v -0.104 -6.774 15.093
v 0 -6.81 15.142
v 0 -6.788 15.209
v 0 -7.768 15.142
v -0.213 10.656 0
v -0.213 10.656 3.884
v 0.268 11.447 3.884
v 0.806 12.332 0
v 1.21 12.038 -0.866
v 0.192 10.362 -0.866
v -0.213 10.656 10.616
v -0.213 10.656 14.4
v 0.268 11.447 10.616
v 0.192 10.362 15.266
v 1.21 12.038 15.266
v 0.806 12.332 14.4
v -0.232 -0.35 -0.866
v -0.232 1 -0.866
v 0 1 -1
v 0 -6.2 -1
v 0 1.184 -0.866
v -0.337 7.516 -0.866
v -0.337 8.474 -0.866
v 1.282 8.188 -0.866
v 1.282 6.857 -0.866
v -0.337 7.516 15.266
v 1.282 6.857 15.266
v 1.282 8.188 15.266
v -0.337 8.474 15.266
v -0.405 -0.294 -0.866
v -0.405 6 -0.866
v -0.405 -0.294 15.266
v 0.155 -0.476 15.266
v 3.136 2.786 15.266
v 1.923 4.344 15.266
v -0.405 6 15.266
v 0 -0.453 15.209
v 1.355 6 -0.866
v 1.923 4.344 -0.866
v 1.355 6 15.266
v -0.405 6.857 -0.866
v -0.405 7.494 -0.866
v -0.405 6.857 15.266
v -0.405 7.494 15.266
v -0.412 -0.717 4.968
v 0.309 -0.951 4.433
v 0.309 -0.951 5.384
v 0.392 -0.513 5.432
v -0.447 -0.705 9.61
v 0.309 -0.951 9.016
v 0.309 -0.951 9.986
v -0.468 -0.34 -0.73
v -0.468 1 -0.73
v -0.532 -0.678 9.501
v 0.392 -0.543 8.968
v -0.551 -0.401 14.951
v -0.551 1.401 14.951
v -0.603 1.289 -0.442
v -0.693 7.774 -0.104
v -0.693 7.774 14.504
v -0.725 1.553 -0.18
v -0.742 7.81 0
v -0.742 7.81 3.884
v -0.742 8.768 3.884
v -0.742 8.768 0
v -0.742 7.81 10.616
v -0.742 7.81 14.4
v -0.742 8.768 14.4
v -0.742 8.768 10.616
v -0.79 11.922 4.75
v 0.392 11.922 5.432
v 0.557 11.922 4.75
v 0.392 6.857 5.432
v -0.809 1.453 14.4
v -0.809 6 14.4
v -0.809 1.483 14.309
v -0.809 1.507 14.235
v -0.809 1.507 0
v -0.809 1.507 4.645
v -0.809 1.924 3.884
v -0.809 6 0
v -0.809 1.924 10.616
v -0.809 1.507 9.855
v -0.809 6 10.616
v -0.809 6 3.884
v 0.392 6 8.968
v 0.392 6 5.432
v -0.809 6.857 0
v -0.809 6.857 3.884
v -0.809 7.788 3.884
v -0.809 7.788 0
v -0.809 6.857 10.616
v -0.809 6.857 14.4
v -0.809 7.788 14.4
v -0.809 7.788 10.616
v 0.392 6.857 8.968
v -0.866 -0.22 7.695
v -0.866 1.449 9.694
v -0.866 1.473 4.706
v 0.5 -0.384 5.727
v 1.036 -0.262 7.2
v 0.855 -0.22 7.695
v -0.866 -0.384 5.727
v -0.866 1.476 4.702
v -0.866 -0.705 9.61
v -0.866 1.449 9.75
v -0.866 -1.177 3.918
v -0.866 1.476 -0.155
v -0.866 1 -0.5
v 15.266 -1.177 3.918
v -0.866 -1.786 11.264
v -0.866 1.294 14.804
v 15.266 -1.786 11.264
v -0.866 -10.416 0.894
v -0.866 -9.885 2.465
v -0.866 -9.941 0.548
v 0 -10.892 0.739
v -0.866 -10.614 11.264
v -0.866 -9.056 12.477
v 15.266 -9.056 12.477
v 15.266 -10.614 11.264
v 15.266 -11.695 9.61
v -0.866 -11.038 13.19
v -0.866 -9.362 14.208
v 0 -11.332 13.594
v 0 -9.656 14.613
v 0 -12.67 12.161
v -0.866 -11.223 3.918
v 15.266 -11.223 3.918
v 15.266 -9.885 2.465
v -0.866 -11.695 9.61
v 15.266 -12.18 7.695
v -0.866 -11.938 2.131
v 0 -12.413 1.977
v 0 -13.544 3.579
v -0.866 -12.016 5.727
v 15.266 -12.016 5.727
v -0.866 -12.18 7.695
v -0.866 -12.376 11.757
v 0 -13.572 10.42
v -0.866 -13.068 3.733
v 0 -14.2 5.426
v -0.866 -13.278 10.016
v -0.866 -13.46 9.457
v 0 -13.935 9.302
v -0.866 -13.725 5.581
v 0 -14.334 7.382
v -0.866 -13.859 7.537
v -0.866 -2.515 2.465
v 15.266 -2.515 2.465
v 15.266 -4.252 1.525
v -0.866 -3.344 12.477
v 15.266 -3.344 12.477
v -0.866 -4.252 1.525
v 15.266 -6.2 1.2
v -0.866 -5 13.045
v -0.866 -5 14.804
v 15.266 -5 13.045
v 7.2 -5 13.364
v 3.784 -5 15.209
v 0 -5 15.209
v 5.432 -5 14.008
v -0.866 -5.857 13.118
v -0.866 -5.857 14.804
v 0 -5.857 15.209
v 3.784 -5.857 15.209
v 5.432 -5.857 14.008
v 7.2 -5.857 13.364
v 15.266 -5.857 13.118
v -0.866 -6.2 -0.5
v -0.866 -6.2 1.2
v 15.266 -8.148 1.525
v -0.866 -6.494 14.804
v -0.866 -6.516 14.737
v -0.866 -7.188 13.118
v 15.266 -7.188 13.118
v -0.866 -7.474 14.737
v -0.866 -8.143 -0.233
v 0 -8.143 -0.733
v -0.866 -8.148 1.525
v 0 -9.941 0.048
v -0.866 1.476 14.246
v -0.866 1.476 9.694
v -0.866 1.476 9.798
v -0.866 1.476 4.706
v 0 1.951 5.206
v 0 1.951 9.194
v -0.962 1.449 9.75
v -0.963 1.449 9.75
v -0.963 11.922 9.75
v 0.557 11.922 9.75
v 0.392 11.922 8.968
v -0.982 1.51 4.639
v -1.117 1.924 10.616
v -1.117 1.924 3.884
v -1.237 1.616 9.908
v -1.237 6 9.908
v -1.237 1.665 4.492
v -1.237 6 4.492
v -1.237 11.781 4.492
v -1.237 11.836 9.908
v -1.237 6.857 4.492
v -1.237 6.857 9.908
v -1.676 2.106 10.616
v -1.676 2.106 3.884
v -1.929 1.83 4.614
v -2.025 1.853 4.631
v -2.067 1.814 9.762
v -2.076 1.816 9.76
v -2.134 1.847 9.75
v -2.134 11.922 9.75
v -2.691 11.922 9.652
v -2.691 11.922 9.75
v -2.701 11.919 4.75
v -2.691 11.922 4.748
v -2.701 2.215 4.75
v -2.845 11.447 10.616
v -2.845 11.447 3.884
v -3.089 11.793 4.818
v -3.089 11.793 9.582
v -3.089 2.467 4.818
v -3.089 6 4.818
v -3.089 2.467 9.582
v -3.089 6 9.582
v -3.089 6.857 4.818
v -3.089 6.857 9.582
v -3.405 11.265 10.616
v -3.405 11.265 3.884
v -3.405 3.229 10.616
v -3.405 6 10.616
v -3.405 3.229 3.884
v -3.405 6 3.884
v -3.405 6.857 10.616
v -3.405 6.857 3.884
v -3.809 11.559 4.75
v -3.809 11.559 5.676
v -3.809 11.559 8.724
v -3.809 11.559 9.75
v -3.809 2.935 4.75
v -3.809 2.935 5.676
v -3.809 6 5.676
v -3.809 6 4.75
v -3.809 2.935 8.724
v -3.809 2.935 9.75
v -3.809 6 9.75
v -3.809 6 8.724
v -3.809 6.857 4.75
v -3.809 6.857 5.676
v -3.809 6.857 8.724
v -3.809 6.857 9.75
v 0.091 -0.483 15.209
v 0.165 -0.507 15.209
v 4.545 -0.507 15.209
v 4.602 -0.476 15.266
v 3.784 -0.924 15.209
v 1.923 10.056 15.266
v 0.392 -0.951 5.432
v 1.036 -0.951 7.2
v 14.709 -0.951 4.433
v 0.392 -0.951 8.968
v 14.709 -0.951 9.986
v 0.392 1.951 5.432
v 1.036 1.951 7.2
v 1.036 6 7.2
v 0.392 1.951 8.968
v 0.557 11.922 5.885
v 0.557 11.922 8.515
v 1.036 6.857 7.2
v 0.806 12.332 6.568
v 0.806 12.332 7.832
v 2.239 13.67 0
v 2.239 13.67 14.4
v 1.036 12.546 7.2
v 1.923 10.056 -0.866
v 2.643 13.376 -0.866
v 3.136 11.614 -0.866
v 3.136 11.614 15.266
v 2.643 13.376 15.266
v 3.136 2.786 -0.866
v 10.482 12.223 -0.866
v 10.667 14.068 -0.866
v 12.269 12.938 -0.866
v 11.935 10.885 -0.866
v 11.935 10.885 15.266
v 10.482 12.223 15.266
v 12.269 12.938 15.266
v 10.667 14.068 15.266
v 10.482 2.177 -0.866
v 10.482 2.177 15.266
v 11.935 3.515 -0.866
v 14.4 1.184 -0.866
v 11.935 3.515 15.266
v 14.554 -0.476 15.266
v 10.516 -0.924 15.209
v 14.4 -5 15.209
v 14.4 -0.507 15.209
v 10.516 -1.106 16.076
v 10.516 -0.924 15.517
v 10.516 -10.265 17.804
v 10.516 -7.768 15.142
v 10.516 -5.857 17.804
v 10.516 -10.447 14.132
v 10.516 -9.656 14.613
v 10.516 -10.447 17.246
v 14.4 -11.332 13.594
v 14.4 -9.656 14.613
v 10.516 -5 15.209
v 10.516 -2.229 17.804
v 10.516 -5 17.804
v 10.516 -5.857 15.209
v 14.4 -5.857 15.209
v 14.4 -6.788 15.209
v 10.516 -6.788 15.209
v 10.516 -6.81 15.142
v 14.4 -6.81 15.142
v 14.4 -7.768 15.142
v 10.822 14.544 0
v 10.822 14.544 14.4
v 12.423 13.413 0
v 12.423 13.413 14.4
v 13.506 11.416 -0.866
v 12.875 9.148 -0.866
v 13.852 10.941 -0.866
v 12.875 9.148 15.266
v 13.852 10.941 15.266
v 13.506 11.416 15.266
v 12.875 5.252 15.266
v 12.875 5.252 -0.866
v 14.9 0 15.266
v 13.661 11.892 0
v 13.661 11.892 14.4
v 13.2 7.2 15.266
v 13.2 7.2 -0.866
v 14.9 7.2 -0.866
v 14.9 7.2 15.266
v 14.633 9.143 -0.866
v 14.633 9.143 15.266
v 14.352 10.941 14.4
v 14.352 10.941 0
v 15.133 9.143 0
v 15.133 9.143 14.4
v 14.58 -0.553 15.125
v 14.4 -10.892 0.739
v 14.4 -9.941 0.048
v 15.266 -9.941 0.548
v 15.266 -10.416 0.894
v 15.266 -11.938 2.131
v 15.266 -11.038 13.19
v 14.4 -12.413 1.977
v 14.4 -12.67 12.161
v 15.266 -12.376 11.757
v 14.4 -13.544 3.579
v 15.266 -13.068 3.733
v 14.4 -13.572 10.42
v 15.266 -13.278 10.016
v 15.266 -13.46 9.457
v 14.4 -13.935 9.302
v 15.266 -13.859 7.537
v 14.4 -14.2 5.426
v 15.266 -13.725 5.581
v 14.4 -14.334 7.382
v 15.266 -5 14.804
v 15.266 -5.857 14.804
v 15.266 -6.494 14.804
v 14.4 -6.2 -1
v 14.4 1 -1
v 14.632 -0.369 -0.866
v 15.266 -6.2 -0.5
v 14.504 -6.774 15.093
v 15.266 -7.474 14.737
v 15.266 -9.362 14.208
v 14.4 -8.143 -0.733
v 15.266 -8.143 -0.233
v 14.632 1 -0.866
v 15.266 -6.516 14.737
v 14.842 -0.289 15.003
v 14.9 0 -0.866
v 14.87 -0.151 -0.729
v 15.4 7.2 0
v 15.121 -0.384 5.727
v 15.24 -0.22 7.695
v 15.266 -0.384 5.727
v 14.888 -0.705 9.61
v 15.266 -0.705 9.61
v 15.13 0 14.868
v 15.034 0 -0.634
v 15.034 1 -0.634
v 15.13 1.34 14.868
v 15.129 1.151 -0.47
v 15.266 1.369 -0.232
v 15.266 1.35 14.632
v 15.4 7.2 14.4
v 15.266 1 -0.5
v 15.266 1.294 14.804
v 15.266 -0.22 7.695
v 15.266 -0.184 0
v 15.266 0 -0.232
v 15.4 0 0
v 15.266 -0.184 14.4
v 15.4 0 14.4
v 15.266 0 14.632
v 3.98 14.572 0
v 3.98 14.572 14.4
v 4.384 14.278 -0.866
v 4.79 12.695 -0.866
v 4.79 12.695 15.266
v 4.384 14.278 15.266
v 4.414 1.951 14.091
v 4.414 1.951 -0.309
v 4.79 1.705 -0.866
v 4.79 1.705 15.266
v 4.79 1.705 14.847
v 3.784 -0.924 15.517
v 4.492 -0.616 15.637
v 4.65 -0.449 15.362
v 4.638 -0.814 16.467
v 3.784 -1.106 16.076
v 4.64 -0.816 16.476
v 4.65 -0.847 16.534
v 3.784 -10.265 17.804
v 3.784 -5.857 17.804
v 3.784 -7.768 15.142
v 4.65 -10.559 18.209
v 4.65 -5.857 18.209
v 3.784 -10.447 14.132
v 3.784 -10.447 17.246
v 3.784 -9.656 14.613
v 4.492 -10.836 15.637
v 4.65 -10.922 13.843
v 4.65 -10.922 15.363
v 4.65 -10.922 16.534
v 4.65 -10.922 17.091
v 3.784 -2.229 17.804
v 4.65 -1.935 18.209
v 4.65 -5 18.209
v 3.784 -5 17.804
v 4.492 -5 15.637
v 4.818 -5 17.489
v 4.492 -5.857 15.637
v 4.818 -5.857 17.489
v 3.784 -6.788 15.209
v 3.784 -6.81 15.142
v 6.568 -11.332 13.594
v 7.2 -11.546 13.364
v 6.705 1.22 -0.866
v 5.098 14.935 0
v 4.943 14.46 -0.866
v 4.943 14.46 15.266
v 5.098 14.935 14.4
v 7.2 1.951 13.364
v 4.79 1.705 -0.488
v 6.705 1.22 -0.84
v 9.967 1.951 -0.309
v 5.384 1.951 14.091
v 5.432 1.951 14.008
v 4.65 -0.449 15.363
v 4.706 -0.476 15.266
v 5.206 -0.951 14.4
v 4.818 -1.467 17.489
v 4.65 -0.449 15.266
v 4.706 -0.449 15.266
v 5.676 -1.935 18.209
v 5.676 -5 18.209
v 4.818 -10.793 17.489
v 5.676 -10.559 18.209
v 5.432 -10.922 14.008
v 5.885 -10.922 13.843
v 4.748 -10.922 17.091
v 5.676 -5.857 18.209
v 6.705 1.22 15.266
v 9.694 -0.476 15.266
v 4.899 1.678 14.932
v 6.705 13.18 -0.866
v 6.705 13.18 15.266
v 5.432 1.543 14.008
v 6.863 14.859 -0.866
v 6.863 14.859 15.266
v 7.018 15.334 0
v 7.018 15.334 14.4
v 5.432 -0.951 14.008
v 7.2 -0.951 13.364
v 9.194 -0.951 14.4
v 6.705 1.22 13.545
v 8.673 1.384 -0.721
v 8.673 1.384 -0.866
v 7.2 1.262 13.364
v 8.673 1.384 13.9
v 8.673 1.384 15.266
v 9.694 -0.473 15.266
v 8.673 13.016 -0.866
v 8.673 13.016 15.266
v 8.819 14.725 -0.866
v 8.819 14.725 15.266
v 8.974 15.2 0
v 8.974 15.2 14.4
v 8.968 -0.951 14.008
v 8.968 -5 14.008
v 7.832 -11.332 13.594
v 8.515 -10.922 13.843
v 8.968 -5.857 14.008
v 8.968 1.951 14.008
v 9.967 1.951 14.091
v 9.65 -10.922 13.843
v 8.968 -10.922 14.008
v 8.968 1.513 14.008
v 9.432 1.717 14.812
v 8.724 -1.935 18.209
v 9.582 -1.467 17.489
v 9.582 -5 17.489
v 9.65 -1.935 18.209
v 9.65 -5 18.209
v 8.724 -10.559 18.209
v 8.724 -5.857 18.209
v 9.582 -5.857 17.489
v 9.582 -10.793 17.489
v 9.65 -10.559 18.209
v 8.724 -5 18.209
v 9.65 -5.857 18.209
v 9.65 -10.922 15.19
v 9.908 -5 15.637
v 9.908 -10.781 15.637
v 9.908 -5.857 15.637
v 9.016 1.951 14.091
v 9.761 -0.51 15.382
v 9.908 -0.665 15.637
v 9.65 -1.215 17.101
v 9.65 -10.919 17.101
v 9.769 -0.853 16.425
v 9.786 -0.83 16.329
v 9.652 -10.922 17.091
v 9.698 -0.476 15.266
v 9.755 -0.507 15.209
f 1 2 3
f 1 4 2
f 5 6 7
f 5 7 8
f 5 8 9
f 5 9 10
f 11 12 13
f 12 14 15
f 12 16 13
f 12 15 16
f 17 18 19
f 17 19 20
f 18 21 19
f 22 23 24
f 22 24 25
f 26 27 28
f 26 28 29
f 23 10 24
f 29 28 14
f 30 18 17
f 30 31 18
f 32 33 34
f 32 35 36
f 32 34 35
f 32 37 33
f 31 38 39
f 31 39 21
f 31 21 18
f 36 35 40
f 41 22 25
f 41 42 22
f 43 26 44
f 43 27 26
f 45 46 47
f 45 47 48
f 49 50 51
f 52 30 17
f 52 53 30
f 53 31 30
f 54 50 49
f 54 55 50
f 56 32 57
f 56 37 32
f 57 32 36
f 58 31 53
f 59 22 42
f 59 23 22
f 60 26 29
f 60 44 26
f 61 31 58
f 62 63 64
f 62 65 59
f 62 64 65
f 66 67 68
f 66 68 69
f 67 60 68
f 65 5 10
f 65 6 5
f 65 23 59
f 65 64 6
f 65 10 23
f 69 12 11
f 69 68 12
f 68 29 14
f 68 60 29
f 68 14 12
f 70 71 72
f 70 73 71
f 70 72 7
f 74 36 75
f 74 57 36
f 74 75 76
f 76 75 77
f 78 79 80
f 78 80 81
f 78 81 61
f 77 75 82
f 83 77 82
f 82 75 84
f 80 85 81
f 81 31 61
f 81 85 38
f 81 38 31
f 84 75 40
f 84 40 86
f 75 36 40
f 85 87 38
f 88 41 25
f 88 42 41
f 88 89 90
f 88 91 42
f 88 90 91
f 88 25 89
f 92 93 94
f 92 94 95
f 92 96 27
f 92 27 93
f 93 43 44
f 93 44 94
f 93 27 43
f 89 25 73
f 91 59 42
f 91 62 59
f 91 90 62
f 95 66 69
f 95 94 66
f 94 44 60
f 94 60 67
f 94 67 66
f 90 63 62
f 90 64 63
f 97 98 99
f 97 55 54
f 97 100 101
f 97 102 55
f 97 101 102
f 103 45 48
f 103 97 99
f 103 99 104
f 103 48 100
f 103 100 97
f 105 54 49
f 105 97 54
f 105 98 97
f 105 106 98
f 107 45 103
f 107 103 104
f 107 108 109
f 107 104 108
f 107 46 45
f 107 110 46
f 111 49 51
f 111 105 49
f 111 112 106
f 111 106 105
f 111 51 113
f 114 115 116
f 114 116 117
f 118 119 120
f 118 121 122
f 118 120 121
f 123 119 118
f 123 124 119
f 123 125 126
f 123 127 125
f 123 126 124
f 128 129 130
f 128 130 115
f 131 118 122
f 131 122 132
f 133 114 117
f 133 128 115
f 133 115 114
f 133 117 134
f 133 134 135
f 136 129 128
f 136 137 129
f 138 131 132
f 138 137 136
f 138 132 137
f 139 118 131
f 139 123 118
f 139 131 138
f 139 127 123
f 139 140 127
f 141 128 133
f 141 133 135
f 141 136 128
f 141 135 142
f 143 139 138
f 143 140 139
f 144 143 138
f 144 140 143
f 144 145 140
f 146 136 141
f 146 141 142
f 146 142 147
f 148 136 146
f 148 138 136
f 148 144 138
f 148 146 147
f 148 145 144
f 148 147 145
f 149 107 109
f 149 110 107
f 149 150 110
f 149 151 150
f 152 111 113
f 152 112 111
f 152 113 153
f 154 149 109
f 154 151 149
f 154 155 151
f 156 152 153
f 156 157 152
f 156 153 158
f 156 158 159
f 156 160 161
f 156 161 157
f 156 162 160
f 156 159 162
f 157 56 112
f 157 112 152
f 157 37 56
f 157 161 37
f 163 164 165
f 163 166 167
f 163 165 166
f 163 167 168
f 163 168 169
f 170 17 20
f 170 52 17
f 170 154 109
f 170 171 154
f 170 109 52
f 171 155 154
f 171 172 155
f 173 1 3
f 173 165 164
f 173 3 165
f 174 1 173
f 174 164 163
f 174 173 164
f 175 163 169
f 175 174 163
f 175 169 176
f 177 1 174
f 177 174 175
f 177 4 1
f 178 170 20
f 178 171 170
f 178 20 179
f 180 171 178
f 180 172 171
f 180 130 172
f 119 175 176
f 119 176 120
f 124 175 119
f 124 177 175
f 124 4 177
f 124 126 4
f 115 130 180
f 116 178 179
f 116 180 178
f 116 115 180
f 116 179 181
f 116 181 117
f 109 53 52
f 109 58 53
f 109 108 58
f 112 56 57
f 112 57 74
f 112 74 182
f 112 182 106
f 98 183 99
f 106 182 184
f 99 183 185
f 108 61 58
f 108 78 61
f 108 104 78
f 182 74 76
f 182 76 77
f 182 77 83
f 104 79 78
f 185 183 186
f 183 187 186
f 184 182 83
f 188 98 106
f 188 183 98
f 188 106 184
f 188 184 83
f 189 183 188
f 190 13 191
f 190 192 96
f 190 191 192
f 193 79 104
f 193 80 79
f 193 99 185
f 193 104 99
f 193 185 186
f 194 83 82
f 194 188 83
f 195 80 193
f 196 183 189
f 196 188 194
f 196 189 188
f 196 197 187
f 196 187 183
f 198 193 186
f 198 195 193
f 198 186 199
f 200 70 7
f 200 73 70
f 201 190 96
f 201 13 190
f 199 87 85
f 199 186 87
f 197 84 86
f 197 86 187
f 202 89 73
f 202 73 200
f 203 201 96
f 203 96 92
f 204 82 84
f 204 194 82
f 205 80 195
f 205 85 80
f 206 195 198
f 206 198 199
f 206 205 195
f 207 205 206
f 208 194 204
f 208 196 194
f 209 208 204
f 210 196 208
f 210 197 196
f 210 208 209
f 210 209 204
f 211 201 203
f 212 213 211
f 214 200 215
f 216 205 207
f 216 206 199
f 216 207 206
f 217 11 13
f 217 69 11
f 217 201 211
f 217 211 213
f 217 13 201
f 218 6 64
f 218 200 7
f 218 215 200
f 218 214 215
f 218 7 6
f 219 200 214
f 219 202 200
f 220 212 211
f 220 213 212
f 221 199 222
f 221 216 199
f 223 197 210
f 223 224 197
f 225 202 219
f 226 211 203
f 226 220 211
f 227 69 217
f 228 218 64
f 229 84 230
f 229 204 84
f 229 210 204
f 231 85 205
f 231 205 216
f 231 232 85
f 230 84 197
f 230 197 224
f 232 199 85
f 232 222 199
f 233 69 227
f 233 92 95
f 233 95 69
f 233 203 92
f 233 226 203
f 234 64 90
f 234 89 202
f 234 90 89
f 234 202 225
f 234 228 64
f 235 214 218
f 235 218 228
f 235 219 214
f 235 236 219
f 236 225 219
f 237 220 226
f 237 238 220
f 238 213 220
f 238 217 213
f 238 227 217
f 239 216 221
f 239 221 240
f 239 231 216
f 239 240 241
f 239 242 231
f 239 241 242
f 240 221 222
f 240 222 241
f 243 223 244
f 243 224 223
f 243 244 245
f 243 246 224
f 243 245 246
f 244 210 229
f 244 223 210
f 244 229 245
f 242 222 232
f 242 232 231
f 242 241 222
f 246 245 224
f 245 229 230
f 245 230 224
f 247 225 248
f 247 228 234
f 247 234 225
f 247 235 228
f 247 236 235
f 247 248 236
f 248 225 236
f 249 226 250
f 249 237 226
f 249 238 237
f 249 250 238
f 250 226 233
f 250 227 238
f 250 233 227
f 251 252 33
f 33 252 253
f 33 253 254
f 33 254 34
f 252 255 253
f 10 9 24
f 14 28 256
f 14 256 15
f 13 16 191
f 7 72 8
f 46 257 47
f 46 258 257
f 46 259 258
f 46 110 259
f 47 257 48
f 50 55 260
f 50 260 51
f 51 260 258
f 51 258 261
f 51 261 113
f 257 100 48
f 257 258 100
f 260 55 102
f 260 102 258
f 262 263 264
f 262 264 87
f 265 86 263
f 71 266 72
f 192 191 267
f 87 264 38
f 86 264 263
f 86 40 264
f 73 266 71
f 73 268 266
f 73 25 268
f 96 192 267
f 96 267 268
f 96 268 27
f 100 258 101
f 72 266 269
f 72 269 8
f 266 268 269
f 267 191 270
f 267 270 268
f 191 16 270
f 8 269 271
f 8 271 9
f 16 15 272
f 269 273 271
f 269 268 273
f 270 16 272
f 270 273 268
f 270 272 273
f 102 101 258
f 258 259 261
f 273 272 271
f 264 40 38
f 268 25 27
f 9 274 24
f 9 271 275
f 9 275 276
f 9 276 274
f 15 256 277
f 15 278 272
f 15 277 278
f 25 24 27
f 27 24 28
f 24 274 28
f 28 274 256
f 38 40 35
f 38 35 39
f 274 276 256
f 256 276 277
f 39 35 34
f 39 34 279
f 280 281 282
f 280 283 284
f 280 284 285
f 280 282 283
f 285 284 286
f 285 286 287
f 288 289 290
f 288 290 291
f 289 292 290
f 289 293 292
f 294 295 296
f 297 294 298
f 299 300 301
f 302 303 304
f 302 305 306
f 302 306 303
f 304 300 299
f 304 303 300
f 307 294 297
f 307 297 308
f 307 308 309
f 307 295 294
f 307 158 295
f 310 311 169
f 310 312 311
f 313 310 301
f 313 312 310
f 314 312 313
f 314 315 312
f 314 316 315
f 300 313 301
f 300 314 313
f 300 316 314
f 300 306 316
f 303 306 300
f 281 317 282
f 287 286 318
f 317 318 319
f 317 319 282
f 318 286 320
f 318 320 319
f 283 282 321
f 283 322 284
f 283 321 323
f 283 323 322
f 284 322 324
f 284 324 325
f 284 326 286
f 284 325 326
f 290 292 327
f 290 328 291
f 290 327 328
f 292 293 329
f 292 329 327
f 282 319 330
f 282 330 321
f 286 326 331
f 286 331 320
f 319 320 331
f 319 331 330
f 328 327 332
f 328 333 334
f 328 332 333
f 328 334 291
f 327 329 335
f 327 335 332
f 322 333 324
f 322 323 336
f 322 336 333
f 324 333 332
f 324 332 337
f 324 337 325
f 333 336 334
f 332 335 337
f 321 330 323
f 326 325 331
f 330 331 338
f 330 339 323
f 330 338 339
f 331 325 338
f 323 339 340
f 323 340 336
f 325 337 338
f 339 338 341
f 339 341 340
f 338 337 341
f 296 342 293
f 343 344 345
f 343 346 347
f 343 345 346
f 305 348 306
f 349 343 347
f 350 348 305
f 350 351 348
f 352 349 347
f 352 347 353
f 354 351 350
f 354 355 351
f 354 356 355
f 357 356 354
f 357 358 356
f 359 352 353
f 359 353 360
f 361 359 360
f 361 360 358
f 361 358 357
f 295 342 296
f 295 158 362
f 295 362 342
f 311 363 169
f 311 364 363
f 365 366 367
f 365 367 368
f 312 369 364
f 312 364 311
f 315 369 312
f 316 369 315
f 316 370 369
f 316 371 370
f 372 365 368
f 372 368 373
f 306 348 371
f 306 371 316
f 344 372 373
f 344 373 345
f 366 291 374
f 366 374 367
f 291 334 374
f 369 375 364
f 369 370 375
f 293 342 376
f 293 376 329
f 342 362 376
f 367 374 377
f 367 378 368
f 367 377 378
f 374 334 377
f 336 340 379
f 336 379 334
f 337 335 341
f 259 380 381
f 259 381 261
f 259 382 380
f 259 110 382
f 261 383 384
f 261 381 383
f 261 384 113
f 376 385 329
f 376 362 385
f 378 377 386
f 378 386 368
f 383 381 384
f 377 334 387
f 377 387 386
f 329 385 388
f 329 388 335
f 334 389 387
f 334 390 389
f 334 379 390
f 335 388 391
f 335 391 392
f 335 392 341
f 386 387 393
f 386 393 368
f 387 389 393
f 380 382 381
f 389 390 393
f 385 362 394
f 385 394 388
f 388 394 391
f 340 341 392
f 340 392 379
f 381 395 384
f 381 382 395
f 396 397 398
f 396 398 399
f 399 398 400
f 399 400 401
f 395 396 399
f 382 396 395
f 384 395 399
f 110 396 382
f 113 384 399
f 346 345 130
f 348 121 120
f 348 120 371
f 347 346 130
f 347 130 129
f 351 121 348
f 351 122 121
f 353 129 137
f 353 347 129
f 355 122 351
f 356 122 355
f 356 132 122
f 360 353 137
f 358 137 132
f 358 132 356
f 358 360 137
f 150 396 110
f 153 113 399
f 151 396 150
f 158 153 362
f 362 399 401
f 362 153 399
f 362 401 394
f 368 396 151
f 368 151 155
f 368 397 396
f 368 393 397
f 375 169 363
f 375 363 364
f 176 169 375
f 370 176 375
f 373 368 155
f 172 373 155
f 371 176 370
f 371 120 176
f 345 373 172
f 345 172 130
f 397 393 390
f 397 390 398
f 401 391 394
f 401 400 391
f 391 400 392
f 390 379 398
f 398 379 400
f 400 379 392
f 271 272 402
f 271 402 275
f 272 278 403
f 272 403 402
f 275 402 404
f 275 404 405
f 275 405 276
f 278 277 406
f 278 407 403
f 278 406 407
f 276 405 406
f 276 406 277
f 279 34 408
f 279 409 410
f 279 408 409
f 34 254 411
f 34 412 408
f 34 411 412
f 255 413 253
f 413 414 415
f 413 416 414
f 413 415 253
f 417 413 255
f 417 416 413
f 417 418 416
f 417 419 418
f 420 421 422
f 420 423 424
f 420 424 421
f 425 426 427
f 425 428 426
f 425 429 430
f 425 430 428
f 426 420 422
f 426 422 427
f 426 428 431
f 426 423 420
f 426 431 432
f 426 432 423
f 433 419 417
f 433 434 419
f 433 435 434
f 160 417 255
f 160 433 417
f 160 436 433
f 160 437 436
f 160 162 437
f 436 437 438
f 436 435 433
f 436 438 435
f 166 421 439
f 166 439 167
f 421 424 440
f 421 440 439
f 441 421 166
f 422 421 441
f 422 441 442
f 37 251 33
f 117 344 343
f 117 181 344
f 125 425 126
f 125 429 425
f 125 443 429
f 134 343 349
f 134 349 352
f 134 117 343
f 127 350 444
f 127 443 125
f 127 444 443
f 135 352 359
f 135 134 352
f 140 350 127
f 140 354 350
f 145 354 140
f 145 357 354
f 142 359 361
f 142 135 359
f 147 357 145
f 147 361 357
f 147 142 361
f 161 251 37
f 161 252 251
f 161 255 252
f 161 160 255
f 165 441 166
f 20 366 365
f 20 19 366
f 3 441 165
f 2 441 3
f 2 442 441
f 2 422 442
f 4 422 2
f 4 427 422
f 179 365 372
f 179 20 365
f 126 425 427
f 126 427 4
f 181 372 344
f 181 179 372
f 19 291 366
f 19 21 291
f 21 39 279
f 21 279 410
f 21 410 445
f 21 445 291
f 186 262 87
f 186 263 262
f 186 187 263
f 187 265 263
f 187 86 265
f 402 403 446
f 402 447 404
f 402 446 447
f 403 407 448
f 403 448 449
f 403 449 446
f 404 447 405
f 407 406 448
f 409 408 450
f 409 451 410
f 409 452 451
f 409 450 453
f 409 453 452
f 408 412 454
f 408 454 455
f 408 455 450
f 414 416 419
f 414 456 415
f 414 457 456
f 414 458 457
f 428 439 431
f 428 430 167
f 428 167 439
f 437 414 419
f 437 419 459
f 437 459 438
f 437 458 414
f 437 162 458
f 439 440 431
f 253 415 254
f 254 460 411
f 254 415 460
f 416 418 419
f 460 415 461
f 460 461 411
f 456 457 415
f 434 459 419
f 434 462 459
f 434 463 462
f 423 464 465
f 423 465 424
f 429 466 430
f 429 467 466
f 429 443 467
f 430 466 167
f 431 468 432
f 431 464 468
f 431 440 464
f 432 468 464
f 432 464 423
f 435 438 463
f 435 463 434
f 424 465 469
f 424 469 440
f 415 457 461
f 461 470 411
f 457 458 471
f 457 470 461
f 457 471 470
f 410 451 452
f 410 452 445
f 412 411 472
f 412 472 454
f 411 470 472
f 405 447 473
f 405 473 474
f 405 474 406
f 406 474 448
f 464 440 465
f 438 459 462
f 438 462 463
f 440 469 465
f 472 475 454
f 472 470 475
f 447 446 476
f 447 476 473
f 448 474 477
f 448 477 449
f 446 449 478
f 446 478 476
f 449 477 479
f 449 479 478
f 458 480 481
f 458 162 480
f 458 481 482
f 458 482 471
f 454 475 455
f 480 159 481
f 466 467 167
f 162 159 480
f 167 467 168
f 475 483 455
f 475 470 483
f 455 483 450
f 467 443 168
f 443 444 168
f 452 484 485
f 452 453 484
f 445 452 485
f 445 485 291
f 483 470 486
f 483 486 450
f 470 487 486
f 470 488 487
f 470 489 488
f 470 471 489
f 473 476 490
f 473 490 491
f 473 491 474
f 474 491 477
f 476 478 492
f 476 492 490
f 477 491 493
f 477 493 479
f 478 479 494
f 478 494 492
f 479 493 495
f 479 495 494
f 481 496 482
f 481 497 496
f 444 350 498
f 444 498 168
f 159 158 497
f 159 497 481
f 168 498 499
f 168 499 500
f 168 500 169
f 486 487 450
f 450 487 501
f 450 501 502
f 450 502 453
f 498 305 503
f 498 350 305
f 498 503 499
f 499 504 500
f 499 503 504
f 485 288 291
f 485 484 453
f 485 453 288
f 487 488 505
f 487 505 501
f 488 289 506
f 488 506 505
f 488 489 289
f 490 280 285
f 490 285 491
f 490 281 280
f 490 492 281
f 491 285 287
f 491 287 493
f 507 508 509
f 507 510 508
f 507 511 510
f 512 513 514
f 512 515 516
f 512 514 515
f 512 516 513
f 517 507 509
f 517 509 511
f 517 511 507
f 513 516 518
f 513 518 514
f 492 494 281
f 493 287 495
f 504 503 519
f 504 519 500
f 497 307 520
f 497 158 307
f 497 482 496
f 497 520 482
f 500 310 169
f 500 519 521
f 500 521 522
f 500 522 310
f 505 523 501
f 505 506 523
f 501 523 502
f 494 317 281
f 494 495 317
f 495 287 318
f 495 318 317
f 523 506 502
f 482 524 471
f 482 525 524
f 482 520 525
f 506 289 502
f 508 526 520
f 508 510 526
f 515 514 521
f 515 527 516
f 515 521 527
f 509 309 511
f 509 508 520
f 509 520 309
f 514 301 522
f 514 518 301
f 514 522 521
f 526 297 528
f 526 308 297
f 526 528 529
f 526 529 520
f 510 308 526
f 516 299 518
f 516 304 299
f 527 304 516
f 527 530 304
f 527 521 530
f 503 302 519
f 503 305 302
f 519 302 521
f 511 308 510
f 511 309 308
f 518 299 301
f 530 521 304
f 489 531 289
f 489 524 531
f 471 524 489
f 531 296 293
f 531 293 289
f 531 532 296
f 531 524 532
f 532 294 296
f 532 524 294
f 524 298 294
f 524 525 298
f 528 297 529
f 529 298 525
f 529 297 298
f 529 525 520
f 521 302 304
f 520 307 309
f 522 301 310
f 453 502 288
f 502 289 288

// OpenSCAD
//M. Haris Usmani
//http://harisusmani.com

//All Units are in mm, 

/* [Main Settings] */
//Diameter of Pipe in milimeters 
R=12; 

//Space for Tightening
T=1; //[0:5]

//Nut Size
M=5.5; //[4,5,6]

/////////////////////////////////////////////////////////////////////////////
//Strength of Clamp (Fixed)
S=1.2; // [1.2] Determines Strength of Clamp in Percentage-FIXED!

/////////////////////////////////////////////////////////////////////////////
//Hexagonal Module from shapes.scad, http://svn.clifford.at/openscad/trunk/libraries/shapes.scad by Catarina Mota
module hexagon(size, height) {
  boxWidth = size/1.75;
  for (r = [-60, 0, 60]) rotate([0,0,r]) cube([boxWidth, size, height], true);
}
/////////////////////////////////////////////////////////////////////////////

//Pipe Model for Visualization
//translate([R*S/2,R*S/2,-R*6]) cylinder(R*10,R/2,R/2);

union()//Main Duplication
{

difference() //Pipe Hole
{
union()
{
minkowski() //Fillet
{
	union()
	{
		cube([R*S,R/2*S, R*S]); //Main Body
		translate([R*S/2,R*S/2,0]) cylinder(R*S,R*S/2,R*S/2); //Curved Edge
	}
	sphere([R/2,R,R*5/12]); //Fillet Object
}

minkowski() //Fillet
{
	difference() //Hard Chamfer
	{
		translate([-R/4,R/5,(R/2)-(R*5/48)]) cube([R/2,R/1.4,R*5/12]);
		translate([-R,-R*7/17,(R/2)-(R*5/24)]) rotate([0,0,-33]) cube([R/2,R,2*R*5/12]);
	}
	sphere([R/2,R,R*5/12]); //Fillet Object
}
}
	union()
	{
		translate([R*S/2,R*S/2,-R*6]) cylinder(R*10,R/2,R/2);//Pipe
		translate([-R,R*S*5/12,-R]) cube([R*2,R/(15-T),R*4]);//Tightning Space
		translate([-R/7,R*2,(R*S/2)]) rotate([90,0,0]) cylinder((R*4),M/2,M/2); //Screw Space
		if (M==4) translate([-R/7,-R*0.2,(R*S/2)]) rotate([90,0,0]) hexagon(7.66,50); //NUTS
		if (M==5) translate([-R/7,-R*0.2,(R*S/2)]) rotate([90,0,0]) hexagon(8.79,50);
		if (M==6) translate([-R/7,-R*0.2,(R*S/2)]) rotate([90,0,0]) hexagon(11.05,50);
	}
} //Single Side ENDS

}

{

translate([R*S,1,R*S]) rotate([180,90,0]) //Main Translation

//COPY SIDE HERE
difference() //Pipe Hole
{
union()
{
minkowski() //Fillet
{
	union()
	{
		cube([R*S,R/2*S, R*S]); //Main Body
		translate([R*S/2,R*S/2,0]) cylinder(R*S,R*S/2,R*S/2); //Curved Edge
	}
	sphere([R/2,R,R*5/12]); //Fillet Object
}

minkowski() //Fillet
{
	difference() //Hard Chamfer
	{
		translate([-R/4,R/5,(R/2)-(R*5/48)]) cube([R/2,R/1.4,R*5/12]);
		translate([-R,-R*7/17,(R/2)-(R*5/24)]) rotate([0,0,-33]) cube([R/2,R,2*R*5/12]);
	}
	sphere([R/2,R,R*5/12]); //Fillet Object
}
}
	union()
	{
		translate([R*S/2,R*S/2,-R*6]) cylinder(R*10,R/2,R/2);//Pipe
		translate([-R,R*S*5/12,-R]) cube([R*2,R/(15-T),R*4]);//Tightning Space
		translate([-R/7,R*2,(R*S/2)]) rotate([90,0,0]) cylinder((R*4),M/2,M/2); //Screw Space
		if (M==4) translate([-R/7,-R*0.2,(R*S/2)]) rotate([90,0,0]) hexagon(7.66,50); //NUTS
		if (M==5) translate([-R/7,-R*0.2,(R*S/2)]) rotate([90,0,0]) hexagon(8.79,50);
		if (M==6) translate([-R/7,-R*0.2,(R*S/2)]) rotate([90,0,0]) hexagon(11.05,50);
	}
}
///////////////
}

//preview[view: north, tilt: top];
